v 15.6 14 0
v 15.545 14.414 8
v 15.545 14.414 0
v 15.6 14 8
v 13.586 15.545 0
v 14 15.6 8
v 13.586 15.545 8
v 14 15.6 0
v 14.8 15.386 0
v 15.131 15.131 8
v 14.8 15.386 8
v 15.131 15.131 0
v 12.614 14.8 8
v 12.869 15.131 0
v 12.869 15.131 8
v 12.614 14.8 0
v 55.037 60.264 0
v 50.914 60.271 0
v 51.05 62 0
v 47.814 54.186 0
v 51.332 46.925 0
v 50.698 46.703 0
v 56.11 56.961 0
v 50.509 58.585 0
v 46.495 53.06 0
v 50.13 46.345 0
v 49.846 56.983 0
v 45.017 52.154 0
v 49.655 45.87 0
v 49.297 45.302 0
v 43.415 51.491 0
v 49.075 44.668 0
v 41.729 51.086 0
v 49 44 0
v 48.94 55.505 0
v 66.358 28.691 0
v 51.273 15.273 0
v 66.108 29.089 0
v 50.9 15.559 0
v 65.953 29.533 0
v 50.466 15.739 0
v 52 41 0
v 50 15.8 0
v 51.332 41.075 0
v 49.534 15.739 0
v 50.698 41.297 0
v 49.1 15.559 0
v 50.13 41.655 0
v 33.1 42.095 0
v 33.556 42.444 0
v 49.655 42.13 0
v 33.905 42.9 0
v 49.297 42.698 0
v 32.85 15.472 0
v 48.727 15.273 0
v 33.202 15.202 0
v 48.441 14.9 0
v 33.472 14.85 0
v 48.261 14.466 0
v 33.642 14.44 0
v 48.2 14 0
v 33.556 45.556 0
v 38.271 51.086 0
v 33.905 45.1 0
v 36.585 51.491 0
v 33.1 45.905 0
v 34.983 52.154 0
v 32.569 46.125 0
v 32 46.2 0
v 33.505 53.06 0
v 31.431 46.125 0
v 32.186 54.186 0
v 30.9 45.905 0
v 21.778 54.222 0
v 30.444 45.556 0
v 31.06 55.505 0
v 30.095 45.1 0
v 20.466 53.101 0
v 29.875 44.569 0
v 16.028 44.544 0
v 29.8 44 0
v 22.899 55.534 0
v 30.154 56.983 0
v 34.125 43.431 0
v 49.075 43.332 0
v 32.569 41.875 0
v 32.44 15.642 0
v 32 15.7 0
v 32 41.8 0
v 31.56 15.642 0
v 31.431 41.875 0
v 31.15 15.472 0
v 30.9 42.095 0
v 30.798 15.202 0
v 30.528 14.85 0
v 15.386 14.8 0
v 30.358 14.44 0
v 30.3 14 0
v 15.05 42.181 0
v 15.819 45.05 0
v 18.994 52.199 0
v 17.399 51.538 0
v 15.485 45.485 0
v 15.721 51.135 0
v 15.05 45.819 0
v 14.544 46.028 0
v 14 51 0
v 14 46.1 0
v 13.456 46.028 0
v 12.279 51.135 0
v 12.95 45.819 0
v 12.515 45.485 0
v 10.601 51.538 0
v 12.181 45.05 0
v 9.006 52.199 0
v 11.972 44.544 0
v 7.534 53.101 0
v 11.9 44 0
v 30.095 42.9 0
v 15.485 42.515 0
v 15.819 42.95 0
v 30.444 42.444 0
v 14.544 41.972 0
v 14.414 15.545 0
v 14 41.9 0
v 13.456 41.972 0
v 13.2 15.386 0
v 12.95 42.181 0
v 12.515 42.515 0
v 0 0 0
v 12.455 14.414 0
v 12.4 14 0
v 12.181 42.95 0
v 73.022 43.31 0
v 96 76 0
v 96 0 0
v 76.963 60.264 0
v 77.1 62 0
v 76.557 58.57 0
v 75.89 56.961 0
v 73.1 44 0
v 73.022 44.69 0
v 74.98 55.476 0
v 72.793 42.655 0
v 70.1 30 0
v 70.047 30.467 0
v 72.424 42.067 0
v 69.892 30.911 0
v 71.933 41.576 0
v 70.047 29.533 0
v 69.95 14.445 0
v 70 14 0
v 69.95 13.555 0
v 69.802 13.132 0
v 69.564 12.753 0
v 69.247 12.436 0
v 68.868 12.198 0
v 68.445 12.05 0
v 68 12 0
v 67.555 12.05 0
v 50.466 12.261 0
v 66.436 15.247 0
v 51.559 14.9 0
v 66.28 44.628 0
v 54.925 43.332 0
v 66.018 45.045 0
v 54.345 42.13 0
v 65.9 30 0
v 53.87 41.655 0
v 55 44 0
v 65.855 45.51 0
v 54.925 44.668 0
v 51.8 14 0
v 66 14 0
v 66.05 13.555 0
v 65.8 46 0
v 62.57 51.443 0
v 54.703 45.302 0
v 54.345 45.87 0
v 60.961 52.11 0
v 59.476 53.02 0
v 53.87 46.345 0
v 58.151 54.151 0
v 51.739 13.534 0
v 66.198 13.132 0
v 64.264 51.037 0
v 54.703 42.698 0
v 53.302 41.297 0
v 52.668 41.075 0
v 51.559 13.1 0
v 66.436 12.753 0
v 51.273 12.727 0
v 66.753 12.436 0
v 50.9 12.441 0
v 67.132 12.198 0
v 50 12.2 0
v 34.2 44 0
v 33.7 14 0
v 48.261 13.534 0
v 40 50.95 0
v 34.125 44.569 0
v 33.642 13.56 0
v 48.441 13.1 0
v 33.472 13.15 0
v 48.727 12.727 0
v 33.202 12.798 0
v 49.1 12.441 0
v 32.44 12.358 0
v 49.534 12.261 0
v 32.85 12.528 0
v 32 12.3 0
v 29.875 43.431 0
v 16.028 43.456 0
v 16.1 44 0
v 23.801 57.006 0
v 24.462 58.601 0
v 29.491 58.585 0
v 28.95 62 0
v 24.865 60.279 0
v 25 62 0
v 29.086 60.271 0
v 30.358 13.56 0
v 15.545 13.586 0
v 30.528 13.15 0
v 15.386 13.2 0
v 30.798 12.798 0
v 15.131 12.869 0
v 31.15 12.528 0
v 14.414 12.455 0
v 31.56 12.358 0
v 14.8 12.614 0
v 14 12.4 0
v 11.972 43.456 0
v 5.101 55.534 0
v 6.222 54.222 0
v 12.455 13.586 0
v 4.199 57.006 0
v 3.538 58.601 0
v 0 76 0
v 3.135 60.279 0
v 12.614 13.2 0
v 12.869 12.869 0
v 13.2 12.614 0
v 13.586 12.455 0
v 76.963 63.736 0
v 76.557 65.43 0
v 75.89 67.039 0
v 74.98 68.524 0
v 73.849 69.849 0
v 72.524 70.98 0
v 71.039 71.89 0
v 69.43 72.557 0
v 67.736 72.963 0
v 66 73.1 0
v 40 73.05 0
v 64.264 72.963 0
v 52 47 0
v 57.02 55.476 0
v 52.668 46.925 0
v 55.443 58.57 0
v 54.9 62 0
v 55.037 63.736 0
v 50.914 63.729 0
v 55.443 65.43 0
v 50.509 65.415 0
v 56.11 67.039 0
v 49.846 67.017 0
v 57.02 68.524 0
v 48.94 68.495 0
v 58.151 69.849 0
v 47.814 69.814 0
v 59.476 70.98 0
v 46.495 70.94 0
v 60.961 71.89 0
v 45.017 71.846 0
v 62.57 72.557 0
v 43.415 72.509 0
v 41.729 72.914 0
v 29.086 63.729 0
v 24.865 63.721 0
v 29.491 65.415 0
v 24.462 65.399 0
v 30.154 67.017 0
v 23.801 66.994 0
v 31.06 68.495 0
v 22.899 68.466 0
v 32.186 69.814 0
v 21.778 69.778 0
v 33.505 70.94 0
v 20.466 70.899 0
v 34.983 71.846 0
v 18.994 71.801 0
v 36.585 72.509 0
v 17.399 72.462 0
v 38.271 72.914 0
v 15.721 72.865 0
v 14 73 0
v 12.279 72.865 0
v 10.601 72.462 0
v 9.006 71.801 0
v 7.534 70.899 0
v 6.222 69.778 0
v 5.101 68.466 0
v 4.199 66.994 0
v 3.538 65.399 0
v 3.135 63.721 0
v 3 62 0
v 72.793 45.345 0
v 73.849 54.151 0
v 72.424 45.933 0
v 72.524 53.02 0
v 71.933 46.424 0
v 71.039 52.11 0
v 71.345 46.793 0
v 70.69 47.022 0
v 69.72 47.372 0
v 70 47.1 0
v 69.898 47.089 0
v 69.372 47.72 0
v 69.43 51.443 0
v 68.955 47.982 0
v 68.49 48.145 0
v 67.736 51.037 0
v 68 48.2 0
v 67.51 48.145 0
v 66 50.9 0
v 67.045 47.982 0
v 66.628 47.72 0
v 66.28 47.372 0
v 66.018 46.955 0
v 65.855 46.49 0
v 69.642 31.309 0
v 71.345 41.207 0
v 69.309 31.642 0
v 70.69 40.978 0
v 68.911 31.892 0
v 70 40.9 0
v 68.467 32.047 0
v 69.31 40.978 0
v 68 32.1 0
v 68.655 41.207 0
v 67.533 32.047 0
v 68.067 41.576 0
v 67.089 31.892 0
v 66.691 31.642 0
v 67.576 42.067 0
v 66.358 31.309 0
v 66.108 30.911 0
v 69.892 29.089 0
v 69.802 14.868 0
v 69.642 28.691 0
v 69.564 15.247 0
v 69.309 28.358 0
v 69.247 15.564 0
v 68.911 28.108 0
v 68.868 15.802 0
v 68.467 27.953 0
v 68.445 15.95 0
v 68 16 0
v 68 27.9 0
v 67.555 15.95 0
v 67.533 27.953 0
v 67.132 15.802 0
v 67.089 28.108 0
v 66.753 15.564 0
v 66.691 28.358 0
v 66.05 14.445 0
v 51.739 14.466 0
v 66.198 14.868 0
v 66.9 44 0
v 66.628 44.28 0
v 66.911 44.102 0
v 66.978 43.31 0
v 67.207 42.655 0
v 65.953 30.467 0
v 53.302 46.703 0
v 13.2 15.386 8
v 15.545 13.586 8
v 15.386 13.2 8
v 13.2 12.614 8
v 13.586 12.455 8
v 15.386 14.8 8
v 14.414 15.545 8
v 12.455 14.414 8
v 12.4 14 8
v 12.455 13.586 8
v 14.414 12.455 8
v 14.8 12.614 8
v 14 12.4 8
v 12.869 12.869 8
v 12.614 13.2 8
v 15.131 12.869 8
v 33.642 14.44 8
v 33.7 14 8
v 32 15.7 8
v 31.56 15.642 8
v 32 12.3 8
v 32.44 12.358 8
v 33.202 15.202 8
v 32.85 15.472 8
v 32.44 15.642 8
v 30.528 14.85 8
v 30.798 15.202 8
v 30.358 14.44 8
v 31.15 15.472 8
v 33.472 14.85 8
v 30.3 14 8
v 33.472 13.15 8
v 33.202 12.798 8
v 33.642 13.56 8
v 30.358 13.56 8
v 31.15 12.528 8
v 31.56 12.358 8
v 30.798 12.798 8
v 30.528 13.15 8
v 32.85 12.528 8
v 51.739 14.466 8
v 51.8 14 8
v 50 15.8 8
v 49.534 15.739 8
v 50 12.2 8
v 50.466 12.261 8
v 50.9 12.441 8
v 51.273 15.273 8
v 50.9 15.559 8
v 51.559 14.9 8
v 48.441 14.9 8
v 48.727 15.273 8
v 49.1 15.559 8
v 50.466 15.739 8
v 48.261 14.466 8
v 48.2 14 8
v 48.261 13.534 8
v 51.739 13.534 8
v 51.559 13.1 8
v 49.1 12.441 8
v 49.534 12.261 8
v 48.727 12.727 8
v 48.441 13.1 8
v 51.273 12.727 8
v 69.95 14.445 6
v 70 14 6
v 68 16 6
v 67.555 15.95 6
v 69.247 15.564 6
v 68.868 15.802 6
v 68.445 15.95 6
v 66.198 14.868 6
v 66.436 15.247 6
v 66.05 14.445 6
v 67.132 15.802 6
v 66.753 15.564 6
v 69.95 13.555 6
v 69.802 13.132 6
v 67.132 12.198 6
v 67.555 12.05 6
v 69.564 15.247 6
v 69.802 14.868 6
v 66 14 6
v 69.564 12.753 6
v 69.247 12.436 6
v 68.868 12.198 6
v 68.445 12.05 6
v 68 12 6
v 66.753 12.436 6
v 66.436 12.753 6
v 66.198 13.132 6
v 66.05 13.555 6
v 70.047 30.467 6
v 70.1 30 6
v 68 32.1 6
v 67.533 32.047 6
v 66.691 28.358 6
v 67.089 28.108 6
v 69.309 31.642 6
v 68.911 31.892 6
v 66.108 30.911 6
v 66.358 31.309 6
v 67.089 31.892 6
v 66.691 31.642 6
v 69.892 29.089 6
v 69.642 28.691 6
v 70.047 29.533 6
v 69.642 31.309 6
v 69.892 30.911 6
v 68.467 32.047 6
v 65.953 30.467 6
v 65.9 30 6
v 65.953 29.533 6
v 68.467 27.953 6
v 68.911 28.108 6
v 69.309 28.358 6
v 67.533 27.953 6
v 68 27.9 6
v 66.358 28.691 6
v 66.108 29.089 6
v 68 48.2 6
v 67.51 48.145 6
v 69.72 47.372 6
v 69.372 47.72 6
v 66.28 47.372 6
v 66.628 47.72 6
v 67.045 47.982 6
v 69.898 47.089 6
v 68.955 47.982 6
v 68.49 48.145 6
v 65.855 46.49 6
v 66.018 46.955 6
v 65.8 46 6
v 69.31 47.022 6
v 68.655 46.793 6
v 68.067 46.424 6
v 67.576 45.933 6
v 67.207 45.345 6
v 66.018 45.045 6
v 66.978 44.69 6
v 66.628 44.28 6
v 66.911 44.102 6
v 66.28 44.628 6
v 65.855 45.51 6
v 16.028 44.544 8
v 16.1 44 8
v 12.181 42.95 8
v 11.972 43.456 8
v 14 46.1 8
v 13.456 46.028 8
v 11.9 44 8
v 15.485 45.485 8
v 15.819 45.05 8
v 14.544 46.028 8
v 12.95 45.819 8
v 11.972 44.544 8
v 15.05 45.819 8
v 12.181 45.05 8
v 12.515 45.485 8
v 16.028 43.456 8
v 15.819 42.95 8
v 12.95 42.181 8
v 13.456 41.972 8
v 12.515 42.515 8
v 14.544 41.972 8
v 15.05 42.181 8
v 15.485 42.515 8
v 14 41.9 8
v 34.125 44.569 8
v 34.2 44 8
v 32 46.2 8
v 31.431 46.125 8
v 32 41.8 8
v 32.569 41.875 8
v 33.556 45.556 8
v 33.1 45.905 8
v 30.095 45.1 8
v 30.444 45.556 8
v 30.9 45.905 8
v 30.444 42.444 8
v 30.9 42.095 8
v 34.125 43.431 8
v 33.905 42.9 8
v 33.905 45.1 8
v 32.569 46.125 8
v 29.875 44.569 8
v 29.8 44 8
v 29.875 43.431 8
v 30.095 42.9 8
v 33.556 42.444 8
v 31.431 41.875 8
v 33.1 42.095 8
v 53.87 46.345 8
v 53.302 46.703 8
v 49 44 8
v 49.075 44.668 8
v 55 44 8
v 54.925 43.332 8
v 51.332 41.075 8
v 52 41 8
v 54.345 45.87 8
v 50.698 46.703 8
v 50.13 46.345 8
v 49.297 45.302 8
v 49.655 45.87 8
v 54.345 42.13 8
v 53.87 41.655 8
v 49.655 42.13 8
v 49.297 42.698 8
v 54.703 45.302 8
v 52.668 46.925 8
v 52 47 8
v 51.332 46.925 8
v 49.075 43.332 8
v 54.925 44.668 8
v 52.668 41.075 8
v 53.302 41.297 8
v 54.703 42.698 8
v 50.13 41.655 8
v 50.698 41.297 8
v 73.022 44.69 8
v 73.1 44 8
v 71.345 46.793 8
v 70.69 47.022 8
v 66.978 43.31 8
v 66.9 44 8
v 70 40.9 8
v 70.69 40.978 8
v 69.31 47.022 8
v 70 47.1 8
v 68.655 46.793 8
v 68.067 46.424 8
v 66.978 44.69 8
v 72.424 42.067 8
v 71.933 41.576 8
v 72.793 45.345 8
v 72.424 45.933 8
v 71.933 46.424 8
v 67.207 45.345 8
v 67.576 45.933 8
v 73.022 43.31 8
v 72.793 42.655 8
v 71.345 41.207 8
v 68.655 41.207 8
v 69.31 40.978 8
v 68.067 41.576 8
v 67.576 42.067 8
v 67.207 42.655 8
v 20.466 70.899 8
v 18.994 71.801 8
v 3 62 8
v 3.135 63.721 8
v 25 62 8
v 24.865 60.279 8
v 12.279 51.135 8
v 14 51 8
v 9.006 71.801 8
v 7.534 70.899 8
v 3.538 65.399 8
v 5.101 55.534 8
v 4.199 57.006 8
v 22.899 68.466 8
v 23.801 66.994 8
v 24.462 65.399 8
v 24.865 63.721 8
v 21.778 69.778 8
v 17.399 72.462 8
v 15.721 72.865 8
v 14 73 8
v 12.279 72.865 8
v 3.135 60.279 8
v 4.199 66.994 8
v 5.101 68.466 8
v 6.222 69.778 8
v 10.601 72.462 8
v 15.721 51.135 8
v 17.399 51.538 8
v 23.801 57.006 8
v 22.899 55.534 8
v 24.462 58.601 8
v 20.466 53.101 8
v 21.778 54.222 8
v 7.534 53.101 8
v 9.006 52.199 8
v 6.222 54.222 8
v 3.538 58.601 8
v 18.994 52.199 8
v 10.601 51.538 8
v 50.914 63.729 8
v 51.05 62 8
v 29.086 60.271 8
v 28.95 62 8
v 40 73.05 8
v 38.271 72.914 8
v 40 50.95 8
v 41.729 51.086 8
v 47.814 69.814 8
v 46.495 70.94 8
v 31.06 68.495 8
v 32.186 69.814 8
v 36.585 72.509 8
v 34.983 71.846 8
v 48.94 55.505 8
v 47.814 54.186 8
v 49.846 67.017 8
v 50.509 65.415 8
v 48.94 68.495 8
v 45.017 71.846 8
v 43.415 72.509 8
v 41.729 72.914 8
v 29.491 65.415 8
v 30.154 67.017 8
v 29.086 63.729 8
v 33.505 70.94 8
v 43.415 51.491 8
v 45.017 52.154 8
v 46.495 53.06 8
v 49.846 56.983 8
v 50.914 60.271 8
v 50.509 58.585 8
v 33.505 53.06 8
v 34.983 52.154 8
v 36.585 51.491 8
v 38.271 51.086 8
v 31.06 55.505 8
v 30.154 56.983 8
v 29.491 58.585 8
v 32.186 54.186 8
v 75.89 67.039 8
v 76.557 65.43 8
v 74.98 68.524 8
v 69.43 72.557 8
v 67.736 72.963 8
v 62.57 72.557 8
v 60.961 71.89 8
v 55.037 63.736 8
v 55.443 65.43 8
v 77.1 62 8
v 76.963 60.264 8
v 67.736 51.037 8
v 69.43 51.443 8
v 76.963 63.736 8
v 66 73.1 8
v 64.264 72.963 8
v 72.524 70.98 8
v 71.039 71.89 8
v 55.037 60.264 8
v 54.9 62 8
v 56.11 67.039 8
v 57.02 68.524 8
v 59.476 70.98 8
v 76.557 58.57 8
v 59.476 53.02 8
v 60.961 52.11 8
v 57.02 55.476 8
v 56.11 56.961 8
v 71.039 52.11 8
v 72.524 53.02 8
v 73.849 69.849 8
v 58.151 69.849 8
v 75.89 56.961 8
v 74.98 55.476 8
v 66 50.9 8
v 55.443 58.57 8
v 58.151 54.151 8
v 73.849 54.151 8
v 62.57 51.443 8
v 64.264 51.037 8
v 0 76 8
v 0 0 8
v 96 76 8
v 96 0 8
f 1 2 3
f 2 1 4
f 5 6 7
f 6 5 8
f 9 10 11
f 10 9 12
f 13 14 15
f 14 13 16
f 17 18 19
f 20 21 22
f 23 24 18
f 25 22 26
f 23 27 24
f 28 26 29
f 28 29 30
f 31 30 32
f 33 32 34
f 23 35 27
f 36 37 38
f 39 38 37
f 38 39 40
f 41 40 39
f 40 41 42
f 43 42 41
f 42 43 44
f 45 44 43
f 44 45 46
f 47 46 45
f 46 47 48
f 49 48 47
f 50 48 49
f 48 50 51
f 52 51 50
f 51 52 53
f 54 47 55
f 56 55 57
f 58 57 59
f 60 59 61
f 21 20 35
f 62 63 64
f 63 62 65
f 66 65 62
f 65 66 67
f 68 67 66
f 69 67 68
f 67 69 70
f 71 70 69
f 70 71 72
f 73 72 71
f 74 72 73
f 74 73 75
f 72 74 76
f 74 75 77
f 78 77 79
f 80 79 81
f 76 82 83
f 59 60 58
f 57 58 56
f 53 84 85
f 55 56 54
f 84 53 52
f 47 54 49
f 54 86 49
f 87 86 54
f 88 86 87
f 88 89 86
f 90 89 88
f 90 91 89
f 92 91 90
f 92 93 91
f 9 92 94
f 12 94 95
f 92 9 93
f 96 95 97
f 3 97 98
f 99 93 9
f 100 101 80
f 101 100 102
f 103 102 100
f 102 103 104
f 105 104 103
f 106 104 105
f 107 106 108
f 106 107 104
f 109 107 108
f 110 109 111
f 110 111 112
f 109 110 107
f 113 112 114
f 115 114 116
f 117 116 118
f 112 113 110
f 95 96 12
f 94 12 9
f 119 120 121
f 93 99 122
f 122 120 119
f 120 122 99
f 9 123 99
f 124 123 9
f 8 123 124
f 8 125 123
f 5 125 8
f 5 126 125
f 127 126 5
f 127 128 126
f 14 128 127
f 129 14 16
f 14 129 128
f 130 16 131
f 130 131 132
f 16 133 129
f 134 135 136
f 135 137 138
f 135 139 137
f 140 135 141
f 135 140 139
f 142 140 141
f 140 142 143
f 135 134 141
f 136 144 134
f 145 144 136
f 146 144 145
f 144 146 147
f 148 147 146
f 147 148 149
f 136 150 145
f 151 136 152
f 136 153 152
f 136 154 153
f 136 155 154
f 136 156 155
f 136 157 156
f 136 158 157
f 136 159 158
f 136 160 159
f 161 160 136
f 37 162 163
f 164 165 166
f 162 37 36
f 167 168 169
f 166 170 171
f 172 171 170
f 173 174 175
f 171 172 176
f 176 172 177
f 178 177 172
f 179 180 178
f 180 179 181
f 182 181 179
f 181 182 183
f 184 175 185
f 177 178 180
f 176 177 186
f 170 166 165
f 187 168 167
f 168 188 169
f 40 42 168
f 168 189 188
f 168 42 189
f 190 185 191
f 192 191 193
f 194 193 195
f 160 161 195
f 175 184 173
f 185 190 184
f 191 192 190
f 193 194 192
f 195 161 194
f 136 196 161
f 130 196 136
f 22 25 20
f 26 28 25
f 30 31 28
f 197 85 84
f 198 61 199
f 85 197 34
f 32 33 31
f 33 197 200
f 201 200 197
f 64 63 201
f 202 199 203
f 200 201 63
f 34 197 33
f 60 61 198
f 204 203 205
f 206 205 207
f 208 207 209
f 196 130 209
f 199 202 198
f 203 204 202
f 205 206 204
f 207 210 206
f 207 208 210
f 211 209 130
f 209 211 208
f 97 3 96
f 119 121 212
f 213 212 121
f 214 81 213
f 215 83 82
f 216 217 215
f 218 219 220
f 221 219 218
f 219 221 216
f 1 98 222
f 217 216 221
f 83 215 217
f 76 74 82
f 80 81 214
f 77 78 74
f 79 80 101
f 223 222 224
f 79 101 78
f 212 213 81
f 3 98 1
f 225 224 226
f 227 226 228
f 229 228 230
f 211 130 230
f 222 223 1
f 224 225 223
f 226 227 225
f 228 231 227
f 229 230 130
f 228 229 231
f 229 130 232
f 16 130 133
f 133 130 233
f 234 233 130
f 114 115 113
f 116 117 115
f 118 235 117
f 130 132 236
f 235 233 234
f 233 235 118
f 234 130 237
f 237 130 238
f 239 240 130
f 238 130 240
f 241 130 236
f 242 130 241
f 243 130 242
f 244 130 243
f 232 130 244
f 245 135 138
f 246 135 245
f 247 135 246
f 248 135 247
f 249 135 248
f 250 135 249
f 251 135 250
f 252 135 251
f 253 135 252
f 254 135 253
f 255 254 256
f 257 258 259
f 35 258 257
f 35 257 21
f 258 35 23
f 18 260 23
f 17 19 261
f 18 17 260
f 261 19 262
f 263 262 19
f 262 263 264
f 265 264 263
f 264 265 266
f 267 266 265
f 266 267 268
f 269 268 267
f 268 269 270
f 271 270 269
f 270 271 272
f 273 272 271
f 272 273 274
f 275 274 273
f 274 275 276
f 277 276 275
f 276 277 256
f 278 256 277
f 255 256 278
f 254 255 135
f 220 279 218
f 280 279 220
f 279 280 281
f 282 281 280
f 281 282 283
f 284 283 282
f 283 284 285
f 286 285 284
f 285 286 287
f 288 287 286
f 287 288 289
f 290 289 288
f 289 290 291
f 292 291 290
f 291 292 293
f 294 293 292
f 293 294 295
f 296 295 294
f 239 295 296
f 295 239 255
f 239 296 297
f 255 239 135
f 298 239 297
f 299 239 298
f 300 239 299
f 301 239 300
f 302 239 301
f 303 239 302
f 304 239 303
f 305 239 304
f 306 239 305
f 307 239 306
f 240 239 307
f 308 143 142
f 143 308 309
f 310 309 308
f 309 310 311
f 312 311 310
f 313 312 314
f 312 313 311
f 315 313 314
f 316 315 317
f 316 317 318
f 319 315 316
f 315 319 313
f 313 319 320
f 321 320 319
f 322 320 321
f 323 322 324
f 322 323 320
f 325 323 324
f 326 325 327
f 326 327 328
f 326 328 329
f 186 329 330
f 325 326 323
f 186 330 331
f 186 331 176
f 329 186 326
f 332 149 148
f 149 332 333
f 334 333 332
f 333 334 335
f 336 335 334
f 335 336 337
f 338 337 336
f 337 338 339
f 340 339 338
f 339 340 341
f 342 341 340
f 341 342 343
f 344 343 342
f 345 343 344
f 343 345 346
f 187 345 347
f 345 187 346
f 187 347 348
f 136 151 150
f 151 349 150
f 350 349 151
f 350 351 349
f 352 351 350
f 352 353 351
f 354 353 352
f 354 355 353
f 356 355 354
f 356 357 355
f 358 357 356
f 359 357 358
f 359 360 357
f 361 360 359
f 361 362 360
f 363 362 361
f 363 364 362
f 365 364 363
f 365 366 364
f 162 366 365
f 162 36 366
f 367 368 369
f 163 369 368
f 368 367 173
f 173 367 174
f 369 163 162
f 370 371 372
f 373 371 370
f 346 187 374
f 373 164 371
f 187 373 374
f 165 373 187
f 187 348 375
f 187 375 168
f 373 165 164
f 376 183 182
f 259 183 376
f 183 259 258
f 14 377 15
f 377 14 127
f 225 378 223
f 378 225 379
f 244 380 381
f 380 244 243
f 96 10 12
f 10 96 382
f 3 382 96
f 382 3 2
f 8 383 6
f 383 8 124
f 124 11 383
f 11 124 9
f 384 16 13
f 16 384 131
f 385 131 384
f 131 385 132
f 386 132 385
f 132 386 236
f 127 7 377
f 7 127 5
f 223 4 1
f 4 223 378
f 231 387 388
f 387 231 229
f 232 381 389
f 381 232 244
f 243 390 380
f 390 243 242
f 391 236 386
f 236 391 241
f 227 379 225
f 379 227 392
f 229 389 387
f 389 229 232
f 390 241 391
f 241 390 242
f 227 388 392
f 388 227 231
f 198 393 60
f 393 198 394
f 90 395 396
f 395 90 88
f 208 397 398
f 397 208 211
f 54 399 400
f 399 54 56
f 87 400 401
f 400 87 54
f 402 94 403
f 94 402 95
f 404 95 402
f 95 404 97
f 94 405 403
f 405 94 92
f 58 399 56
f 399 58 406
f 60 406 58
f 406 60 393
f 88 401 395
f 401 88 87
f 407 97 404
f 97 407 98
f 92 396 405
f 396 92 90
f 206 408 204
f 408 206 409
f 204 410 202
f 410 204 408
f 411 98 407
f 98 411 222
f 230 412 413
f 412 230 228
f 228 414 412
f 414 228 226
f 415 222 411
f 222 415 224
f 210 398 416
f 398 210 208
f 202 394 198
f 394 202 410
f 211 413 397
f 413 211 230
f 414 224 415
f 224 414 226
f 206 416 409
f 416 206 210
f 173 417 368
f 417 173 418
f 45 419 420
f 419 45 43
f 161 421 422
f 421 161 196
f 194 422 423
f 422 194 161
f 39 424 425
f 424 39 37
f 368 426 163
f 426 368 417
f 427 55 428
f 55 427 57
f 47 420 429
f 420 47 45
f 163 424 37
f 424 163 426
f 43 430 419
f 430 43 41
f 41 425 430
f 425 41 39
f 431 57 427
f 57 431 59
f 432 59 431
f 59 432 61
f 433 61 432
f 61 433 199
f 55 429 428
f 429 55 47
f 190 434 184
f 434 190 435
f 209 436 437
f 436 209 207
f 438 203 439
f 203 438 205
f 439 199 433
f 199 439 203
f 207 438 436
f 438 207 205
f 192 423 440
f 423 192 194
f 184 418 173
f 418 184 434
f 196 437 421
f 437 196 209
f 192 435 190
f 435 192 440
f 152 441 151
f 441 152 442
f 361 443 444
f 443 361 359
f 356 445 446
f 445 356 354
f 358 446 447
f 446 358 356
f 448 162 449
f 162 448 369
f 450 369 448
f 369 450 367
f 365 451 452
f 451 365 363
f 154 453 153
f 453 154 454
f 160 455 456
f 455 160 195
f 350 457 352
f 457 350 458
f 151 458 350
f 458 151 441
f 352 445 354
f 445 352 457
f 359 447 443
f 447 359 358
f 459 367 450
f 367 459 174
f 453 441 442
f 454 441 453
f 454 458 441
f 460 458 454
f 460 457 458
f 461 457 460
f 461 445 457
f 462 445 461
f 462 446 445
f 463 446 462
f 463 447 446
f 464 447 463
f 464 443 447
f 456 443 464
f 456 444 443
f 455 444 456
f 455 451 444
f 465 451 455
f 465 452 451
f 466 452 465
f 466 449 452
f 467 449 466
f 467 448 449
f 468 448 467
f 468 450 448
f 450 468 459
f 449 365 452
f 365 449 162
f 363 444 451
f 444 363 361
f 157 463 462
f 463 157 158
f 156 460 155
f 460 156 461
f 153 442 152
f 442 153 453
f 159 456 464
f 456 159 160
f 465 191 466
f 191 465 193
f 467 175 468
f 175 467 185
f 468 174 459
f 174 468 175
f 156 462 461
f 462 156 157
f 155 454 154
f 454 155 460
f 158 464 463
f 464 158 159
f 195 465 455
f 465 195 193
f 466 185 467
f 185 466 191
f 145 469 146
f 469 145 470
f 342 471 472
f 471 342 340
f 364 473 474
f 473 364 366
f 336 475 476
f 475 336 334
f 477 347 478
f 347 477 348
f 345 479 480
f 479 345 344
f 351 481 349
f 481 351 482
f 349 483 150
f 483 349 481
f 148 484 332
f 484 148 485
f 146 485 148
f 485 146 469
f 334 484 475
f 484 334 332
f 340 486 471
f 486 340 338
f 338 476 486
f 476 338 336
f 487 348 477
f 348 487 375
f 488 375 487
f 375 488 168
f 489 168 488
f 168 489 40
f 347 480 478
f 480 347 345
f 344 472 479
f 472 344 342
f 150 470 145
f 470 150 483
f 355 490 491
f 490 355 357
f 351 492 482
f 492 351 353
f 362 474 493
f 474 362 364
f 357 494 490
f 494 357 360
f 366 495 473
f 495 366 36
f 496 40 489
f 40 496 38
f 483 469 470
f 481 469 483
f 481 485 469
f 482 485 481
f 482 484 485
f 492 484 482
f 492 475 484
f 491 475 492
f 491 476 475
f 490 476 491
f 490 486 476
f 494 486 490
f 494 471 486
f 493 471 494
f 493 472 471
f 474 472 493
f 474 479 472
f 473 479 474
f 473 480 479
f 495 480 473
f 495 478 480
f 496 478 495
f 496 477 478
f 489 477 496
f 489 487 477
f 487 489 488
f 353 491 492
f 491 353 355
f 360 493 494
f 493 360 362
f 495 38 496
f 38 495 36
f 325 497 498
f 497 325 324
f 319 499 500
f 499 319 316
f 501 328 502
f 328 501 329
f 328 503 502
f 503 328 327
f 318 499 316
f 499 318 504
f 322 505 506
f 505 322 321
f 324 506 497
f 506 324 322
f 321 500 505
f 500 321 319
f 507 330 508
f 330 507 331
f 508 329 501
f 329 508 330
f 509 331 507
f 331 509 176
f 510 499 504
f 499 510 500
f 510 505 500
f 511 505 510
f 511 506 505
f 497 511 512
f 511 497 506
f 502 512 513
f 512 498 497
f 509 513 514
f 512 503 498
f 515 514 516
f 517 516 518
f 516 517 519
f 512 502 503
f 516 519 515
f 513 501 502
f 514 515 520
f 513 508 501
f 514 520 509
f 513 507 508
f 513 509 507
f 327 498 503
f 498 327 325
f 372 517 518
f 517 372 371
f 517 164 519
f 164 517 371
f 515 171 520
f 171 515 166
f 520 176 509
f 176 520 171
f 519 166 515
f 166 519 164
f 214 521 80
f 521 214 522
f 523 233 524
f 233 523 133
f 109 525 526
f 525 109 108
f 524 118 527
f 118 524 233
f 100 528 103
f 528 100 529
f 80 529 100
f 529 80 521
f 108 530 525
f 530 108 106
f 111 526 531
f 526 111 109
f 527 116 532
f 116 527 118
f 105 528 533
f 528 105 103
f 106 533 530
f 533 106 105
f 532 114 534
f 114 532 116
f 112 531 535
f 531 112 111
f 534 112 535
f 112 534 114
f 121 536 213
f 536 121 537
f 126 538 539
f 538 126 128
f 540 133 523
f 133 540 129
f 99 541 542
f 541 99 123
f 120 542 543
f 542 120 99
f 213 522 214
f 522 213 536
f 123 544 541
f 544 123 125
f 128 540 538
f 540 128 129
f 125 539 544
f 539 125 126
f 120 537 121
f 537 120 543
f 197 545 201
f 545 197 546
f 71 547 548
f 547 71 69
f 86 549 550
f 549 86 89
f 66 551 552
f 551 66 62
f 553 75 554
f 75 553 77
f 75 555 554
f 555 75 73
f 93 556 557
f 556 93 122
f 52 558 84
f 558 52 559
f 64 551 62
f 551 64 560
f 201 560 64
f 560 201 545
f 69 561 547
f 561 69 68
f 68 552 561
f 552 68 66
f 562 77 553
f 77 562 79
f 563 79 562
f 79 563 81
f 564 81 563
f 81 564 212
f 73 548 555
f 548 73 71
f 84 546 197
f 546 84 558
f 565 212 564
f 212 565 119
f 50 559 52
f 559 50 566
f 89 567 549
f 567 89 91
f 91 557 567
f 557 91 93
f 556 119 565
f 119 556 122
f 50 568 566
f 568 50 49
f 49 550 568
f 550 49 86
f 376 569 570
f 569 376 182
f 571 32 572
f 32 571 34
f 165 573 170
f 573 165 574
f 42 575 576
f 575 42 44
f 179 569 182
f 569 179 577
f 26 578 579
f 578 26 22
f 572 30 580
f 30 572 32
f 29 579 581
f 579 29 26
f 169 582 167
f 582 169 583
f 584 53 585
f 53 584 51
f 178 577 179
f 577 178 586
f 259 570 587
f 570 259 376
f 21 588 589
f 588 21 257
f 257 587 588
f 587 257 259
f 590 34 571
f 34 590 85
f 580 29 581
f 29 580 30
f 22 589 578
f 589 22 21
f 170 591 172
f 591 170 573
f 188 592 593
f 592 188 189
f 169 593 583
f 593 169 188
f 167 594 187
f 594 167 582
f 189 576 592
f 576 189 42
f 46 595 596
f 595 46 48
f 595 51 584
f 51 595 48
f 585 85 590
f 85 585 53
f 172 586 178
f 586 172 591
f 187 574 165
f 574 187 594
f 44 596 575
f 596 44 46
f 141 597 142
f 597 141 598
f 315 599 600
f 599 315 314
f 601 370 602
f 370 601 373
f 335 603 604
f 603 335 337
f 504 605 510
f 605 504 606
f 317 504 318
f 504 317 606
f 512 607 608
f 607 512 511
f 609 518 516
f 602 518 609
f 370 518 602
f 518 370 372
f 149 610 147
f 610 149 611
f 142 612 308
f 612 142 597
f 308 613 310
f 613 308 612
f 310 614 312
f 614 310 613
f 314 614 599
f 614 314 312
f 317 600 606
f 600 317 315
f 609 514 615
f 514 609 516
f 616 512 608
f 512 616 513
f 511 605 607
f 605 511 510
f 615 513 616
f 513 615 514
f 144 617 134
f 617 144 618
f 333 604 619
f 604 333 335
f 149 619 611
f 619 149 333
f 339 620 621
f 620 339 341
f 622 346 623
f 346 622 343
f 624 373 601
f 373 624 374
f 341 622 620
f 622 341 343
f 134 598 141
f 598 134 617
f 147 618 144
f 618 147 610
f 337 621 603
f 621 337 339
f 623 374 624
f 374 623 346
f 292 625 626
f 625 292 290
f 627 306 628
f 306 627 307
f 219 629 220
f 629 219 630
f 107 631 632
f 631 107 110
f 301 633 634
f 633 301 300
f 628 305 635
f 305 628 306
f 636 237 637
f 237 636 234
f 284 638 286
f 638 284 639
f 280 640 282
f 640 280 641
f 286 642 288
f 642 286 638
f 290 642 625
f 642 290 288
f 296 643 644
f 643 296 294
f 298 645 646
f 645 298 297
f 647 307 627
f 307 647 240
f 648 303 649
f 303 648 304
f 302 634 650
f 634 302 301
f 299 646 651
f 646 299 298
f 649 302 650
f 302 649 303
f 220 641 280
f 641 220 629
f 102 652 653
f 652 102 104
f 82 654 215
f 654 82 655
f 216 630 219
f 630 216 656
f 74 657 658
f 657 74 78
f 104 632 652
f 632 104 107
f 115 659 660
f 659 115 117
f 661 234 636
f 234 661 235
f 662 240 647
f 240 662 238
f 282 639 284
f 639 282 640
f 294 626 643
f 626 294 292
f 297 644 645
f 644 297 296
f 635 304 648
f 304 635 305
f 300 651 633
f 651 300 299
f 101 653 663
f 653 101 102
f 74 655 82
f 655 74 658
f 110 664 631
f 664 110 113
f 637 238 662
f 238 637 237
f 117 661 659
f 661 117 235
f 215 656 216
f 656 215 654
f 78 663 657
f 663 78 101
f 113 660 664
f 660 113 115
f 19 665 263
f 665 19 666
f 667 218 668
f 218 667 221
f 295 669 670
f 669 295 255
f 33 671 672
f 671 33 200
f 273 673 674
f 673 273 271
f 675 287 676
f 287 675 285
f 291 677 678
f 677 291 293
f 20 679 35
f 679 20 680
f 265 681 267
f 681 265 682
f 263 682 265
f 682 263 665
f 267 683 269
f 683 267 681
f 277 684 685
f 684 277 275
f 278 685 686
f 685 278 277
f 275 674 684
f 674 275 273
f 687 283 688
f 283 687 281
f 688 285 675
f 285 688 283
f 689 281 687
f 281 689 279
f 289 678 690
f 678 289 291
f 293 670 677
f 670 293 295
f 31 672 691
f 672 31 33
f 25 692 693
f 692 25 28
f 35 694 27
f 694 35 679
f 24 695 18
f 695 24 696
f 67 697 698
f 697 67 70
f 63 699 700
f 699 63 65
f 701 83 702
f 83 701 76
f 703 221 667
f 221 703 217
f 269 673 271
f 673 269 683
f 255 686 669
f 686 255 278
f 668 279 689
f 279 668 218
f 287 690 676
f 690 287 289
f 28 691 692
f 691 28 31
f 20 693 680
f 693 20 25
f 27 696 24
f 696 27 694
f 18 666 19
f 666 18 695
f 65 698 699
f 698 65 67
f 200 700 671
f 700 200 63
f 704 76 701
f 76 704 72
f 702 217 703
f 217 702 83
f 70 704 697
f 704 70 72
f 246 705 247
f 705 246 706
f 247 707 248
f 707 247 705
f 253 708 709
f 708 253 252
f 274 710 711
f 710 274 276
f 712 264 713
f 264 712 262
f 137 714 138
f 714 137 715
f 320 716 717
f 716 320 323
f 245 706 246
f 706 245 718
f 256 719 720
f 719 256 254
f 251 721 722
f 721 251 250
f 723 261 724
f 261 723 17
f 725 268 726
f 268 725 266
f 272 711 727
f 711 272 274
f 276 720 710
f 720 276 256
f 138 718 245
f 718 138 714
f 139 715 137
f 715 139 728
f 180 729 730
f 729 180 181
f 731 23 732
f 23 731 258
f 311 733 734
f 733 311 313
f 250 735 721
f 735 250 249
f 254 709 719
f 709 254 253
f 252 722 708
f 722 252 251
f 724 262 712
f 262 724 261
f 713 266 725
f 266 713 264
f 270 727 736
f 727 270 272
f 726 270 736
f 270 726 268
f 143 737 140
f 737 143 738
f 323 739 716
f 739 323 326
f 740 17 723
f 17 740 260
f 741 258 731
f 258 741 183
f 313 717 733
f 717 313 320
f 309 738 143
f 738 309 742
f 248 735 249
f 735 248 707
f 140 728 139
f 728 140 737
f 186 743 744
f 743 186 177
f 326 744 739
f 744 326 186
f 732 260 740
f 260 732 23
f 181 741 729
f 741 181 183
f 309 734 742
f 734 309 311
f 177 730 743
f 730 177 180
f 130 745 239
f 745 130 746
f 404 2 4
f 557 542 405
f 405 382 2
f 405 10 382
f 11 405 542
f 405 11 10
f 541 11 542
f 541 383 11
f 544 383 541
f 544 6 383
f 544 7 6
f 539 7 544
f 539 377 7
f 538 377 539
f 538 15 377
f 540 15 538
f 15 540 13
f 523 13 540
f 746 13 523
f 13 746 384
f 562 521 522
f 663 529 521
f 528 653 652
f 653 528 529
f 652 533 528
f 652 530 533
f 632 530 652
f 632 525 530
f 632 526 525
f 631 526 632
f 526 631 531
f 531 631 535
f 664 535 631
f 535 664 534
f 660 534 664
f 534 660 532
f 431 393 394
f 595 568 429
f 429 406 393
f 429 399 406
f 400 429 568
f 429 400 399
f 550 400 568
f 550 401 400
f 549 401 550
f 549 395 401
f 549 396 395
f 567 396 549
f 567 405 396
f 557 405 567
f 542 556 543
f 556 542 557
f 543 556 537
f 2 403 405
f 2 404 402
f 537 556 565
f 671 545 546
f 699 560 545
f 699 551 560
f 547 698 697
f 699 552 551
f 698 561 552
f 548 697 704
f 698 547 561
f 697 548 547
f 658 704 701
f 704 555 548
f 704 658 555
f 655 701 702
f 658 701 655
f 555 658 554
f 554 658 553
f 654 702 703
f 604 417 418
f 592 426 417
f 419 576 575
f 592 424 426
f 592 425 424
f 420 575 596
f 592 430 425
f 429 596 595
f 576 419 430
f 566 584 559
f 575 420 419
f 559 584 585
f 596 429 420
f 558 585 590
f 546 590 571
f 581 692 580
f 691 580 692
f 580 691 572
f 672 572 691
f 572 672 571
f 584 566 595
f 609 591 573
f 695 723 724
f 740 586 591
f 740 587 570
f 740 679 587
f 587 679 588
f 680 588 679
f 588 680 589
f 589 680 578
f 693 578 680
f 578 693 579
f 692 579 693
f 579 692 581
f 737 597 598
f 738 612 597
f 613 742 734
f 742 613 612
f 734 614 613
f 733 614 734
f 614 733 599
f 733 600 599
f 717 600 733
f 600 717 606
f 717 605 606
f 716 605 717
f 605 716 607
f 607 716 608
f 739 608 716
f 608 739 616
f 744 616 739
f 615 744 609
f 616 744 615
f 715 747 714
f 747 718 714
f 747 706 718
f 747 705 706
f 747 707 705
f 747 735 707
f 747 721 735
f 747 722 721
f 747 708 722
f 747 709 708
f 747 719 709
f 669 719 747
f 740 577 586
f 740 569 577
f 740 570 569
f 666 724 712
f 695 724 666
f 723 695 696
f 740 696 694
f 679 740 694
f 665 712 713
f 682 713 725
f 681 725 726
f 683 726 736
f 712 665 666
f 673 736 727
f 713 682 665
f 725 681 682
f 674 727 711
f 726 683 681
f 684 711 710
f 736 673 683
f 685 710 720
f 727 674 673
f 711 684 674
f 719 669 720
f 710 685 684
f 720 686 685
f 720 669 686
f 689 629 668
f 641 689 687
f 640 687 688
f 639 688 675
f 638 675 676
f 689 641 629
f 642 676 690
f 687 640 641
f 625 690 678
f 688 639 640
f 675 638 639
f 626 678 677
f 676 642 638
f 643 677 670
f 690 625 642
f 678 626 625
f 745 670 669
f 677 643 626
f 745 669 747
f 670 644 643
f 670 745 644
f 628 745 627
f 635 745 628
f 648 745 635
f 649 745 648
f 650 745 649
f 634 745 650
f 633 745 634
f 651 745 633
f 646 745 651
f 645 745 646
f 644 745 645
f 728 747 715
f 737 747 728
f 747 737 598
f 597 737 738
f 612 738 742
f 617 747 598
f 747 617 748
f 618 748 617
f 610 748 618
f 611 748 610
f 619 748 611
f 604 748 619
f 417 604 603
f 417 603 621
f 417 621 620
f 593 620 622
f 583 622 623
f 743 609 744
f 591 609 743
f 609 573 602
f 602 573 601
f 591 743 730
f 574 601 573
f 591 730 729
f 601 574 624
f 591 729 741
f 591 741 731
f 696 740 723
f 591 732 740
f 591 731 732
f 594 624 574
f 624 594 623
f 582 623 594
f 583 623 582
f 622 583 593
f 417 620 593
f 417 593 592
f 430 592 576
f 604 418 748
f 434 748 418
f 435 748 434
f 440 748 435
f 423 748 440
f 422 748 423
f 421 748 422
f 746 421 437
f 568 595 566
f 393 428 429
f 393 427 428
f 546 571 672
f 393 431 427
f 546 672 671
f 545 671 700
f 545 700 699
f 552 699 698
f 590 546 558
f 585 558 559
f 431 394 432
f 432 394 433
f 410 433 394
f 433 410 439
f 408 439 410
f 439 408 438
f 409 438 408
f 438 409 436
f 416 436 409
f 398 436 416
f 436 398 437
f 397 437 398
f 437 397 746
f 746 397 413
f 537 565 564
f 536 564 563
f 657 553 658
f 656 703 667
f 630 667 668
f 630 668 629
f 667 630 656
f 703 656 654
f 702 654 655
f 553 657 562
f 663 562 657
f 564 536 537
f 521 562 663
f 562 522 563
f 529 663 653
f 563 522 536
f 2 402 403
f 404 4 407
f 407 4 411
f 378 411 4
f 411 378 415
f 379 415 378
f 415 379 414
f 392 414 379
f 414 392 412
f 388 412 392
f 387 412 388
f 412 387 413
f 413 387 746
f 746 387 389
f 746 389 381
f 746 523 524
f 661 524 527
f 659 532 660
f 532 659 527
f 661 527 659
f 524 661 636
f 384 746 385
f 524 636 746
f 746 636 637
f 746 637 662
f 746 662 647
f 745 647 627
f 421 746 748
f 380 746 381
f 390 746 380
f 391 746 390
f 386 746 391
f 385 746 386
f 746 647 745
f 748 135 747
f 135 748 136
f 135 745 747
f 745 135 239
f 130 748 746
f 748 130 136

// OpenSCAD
// TOLERANSE-TESTPLATE (print forst, mål med skyvelaere, juster i bil-print.scad)
// 90 x 70 x 8 mm. Alle hull er gjennomgaaende der ikke annet er sagt.
// Bruk: print flat, mål hullene, oppdater fit_clear / insert_clear / pivot_clear.

plate_L = 96;
plate_W = 76;
plate_t = 8;

difference() {
    cube([plate_L, plate_W, plate_t]);

    // --- M3 klaringshull (3,2 / 3,4 / 3,6) ---
    for (i = [0:2]) {
        d = 3.2 + i * 0.2;
        translate([14 + i * 18, 14, 0]) cylinder(d = d, h = plate_t + 2, $fn = 24);
    }

    // --- M3 varmepress-insert (4,0 / 4,2 / 4,4), 6 mm dyp blindhull ---
    for (i = [0:2]) {
        d = 4.0 + i * 0.2;
        translate([68 + i * 0, 14 + i * 16, 0])
            cylinder(d = d, h = 6, $fn = 28);
    }

    // --- M4 pivot (4,2 / 4,4) ---
    for (i = [0:1]) {
        d = 4.2 + i * 0.2;
        translate([14 + i * 18, 44, 0]) cylinder(d = d, h = plate_t + 2, $fn = 24);
    }

    // --- M6 kingpin (6,0 / 6,2) ---
    for (i = [0:1]) {
        d = 6.0 + i * 0.2;
        translate([52 + i * 18, 44, 0]) cylinder(d = d, h = plate_t + 2, $fn = 28);
    }

    // --- 608-lager (22,0 / 22,1 / 22,2) ---
    for (i = [0:2]) {
        d = 22.0 + i * 0.1;
        translate([14 + i * 26, 62, 0]) cylinder(d = d, h = plate_t + 2, $fn = 40);
    }
}

// etiketter (heves 0,4 mm)
module label(txt, x, y) {
    translate([x, y, plate_t])
        linear_extrude(0.4) text(txt, size = 5, font = "Liberation Sans");
}
